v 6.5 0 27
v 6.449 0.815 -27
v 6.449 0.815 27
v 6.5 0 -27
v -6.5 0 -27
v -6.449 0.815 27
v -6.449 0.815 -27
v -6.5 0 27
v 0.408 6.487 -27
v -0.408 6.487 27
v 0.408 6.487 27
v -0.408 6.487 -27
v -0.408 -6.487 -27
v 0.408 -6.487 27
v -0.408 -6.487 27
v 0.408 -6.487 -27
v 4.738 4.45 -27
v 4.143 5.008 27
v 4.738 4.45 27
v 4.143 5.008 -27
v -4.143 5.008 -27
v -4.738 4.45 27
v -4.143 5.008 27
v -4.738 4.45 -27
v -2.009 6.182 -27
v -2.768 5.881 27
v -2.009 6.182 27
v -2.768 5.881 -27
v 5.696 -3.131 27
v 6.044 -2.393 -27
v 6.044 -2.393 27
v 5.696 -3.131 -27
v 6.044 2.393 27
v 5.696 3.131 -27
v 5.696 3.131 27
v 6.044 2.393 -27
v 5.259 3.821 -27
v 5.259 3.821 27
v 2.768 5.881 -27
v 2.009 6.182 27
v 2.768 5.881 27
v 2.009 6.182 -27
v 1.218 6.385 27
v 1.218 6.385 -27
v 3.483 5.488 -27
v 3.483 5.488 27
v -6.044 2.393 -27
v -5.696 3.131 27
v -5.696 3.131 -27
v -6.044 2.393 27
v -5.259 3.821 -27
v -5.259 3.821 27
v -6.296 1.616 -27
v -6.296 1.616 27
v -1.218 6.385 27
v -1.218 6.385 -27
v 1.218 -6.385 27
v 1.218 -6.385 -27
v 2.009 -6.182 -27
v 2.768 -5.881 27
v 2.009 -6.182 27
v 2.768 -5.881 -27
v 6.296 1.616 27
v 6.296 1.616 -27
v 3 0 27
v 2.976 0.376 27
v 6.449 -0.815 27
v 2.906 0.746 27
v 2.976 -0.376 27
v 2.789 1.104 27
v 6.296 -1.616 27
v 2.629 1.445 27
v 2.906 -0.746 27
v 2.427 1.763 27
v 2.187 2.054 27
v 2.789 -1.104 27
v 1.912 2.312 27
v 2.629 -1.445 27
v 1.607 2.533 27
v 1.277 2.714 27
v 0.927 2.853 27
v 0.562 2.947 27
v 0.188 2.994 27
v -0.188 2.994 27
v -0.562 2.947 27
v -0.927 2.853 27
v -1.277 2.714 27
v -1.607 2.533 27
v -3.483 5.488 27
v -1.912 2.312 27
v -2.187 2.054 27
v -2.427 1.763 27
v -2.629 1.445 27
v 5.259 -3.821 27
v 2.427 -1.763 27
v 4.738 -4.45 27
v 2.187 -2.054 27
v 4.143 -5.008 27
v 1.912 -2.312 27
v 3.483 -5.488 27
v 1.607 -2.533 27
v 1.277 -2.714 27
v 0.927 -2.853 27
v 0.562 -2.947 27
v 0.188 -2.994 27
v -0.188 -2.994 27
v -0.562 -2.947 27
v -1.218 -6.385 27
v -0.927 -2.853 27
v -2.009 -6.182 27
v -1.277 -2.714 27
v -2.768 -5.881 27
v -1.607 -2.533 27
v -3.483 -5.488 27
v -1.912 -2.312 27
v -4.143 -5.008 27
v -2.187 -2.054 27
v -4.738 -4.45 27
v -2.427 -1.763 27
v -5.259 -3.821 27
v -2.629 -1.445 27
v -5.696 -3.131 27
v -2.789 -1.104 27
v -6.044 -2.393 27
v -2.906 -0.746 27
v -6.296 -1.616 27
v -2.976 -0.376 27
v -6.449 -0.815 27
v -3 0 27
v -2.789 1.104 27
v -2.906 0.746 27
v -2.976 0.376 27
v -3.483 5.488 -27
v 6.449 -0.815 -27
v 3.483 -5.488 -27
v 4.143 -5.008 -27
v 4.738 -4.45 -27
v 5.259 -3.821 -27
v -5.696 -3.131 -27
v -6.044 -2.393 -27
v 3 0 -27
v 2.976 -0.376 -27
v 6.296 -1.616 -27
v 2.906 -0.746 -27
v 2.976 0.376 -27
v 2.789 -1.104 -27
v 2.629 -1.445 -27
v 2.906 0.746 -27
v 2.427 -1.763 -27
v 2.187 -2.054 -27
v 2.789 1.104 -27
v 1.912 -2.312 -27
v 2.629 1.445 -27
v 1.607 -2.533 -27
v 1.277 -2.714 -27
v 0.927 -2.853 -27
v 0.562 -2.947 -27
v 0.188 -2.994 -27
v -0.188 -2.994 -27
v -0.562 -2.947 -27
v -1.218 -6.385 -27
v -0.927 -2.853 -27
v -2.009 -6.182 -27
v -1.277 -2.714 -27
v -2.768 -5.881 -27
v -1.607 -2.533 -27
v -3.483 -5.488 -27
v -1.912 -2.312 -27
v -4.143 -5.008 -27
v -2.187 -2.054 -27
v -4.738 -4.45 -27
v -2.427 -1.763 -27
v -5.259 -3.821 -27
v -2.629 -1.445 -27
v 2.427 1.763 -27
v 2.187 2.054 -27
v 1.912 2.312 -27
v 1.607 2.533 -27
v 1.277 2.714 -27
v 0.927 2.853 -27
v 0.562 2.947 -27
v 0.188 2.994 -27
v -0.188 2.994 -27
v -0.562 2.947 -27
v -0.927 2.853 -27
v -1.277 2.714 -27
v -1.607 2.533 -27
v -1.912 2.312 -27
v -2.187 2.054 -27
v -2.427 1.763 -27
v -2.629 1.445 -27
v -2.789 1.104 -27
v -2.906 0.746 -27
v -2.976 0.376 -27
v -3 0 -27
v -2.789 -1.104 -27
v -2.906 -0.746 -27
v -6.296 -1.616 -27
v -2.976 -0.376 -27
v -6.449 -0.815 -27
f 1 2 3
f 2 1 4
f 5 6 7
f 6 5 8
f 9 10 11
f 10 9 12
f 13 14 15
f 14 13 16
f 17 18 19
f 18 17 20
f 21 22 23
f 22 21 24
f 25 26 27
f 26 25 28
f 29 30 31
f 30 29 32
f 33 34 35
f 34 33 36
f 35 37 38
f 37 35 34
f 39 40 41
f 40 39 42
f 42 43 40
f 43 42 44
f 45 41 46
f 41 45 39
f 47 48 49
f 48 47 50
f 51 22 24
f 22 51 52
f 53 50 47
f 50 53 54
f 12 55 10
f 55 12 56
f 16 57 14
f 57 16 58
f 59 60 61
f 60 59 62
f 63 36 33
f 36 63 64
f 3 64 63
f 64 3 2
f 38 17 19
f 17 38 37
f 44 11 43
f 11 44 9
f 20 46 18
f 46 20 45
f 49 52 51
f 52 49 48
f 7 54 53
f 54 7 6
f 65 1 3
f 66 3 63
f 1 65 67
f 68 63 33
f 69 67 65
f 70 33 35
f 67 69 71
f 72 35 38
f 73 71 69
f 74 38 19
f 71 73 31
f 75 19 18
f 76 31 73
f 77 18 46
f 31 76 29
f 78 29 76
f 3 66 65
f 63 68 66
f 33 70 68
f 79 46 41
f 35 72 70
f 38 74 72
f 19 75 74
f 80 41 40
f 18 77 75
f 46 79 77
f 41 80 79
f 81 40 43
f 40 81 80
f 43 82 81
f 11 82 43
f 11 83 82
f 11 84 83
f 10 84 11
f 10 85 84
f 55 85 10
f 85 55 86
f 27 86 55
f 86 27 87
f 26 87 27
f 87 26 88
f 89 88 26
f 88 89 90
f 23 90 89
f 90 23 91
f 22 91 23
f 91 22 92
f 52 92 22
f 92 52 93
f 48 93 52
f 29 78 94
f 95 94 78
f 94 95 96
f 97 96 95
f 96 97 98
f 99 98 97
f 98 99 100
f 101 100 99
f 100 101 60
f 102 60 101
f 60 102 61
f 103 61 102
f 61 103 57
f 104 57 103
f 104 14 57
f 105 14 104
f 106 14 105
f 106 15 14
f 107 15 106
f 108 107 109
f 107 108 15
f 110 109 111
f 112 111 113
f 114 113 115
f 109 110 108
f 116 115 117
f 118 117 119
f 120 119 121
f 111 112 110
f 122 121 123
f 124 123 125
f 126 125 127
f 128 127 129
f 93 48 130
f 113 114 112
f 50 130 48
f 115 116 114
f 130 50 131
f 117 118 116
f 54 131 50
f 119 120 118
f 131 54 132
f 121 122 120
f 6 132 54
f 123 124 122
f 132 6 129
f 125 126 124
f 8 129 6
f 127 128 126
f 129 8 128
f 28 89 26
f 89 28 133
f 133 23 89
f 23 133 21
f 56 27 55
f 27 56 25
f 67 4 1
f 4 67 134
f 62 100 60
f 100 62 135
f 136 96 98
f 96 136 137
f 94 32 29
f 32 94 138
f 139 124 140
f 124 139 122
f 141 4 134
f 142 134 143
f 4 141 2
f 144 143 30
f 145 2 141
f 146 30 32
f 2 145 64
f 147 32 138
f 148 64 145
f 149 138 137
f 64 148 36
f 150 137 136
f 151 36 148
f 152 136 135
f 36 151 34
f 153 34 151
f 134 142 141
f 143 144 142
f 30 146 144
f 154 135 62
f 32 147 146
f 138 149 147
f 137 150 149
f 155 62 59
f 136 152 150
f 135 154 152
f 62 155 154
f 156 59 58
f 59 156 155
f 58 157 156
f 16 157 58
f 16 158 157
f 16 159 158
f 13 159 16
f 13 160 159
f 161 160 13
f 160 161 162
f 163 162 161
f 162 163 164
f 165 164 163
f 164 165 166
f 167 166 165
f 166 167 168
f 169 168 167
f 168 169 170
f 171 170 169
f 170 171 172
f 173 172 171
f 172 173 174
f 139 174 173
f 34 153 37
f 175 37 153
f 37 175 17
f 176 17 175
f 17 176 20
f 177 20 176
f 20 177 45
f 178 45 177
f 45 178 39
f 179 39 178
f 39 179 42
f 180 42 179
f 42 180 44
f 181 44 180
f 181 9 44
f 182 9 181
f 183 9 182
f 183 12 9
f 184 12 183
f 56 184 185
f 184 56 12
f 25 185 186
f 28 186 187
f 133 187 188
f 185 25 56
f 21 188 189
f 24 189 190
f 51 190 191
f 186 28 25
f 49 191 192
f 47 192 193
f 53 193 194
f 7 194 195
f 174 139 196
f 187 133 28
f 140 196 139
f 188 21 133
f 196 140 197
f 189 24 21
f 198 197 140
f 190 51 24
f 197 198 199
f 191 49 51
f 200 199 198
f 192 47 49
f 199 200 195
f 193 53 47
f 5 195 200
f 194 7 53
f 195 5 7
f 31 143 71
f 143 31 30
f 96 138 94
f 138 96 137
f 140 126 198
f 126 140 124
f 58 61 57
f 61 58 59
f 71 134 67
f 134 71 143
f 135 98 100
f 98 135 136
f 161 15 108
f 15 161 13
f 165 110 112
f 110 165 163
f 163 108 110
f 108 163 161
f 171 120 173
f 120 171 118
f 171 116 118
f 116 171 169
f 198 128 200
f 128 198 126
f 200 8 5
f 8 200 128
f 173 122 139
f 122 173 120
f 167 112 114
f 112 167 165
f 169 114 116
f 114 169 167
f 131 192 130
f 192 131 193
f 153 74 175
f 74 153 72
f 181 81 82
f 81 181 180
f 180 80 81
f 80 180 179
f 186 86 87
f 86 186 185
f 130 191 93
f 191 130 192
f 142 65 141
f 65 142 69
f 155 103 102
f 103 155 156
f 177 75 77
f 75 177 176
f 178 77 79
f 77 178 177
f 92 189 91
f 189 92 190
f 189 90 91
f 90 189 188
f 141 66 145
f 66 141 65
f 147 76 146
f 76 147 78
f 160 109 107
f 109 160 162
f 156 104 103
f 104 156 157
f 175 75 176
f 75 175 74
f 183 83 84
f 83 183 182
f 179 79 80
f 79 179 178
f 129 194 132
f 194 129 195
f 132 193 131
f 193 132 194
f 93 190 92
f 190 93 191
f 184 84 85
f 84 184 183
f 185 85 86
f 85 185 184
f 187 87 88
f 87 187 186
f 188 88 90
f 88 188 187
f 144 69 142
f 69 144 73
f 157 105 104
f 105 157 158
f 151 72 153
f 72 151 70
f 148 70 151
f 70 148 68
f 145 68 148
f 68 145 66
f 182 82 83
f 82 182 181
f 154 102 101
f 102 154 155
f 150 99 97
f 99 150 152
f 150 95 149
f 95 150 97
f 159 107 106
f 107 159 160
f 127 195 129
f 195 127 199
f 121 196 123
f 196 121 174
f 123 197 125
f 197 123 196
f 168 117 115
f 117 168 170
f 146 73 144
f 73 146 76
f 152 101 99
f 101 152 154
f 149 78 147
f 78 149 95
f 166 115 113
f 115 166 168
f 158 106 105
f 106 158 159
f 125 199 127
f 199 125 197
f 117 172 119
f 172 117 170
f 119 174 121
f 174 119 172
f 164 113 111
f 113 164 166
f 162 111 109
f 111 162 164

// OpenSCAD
$fn = 50;


difference() {
	union() {
		translate(v = [0, 0, -27.0000000000]) {
			cylinder(h = 54, r = 6.5000000000);
		}
	}
	union() {
		translate(v = [0, 0, -100.0000000000]) {
			cylinder(h = 200, r = 3);
		}
	}
}
